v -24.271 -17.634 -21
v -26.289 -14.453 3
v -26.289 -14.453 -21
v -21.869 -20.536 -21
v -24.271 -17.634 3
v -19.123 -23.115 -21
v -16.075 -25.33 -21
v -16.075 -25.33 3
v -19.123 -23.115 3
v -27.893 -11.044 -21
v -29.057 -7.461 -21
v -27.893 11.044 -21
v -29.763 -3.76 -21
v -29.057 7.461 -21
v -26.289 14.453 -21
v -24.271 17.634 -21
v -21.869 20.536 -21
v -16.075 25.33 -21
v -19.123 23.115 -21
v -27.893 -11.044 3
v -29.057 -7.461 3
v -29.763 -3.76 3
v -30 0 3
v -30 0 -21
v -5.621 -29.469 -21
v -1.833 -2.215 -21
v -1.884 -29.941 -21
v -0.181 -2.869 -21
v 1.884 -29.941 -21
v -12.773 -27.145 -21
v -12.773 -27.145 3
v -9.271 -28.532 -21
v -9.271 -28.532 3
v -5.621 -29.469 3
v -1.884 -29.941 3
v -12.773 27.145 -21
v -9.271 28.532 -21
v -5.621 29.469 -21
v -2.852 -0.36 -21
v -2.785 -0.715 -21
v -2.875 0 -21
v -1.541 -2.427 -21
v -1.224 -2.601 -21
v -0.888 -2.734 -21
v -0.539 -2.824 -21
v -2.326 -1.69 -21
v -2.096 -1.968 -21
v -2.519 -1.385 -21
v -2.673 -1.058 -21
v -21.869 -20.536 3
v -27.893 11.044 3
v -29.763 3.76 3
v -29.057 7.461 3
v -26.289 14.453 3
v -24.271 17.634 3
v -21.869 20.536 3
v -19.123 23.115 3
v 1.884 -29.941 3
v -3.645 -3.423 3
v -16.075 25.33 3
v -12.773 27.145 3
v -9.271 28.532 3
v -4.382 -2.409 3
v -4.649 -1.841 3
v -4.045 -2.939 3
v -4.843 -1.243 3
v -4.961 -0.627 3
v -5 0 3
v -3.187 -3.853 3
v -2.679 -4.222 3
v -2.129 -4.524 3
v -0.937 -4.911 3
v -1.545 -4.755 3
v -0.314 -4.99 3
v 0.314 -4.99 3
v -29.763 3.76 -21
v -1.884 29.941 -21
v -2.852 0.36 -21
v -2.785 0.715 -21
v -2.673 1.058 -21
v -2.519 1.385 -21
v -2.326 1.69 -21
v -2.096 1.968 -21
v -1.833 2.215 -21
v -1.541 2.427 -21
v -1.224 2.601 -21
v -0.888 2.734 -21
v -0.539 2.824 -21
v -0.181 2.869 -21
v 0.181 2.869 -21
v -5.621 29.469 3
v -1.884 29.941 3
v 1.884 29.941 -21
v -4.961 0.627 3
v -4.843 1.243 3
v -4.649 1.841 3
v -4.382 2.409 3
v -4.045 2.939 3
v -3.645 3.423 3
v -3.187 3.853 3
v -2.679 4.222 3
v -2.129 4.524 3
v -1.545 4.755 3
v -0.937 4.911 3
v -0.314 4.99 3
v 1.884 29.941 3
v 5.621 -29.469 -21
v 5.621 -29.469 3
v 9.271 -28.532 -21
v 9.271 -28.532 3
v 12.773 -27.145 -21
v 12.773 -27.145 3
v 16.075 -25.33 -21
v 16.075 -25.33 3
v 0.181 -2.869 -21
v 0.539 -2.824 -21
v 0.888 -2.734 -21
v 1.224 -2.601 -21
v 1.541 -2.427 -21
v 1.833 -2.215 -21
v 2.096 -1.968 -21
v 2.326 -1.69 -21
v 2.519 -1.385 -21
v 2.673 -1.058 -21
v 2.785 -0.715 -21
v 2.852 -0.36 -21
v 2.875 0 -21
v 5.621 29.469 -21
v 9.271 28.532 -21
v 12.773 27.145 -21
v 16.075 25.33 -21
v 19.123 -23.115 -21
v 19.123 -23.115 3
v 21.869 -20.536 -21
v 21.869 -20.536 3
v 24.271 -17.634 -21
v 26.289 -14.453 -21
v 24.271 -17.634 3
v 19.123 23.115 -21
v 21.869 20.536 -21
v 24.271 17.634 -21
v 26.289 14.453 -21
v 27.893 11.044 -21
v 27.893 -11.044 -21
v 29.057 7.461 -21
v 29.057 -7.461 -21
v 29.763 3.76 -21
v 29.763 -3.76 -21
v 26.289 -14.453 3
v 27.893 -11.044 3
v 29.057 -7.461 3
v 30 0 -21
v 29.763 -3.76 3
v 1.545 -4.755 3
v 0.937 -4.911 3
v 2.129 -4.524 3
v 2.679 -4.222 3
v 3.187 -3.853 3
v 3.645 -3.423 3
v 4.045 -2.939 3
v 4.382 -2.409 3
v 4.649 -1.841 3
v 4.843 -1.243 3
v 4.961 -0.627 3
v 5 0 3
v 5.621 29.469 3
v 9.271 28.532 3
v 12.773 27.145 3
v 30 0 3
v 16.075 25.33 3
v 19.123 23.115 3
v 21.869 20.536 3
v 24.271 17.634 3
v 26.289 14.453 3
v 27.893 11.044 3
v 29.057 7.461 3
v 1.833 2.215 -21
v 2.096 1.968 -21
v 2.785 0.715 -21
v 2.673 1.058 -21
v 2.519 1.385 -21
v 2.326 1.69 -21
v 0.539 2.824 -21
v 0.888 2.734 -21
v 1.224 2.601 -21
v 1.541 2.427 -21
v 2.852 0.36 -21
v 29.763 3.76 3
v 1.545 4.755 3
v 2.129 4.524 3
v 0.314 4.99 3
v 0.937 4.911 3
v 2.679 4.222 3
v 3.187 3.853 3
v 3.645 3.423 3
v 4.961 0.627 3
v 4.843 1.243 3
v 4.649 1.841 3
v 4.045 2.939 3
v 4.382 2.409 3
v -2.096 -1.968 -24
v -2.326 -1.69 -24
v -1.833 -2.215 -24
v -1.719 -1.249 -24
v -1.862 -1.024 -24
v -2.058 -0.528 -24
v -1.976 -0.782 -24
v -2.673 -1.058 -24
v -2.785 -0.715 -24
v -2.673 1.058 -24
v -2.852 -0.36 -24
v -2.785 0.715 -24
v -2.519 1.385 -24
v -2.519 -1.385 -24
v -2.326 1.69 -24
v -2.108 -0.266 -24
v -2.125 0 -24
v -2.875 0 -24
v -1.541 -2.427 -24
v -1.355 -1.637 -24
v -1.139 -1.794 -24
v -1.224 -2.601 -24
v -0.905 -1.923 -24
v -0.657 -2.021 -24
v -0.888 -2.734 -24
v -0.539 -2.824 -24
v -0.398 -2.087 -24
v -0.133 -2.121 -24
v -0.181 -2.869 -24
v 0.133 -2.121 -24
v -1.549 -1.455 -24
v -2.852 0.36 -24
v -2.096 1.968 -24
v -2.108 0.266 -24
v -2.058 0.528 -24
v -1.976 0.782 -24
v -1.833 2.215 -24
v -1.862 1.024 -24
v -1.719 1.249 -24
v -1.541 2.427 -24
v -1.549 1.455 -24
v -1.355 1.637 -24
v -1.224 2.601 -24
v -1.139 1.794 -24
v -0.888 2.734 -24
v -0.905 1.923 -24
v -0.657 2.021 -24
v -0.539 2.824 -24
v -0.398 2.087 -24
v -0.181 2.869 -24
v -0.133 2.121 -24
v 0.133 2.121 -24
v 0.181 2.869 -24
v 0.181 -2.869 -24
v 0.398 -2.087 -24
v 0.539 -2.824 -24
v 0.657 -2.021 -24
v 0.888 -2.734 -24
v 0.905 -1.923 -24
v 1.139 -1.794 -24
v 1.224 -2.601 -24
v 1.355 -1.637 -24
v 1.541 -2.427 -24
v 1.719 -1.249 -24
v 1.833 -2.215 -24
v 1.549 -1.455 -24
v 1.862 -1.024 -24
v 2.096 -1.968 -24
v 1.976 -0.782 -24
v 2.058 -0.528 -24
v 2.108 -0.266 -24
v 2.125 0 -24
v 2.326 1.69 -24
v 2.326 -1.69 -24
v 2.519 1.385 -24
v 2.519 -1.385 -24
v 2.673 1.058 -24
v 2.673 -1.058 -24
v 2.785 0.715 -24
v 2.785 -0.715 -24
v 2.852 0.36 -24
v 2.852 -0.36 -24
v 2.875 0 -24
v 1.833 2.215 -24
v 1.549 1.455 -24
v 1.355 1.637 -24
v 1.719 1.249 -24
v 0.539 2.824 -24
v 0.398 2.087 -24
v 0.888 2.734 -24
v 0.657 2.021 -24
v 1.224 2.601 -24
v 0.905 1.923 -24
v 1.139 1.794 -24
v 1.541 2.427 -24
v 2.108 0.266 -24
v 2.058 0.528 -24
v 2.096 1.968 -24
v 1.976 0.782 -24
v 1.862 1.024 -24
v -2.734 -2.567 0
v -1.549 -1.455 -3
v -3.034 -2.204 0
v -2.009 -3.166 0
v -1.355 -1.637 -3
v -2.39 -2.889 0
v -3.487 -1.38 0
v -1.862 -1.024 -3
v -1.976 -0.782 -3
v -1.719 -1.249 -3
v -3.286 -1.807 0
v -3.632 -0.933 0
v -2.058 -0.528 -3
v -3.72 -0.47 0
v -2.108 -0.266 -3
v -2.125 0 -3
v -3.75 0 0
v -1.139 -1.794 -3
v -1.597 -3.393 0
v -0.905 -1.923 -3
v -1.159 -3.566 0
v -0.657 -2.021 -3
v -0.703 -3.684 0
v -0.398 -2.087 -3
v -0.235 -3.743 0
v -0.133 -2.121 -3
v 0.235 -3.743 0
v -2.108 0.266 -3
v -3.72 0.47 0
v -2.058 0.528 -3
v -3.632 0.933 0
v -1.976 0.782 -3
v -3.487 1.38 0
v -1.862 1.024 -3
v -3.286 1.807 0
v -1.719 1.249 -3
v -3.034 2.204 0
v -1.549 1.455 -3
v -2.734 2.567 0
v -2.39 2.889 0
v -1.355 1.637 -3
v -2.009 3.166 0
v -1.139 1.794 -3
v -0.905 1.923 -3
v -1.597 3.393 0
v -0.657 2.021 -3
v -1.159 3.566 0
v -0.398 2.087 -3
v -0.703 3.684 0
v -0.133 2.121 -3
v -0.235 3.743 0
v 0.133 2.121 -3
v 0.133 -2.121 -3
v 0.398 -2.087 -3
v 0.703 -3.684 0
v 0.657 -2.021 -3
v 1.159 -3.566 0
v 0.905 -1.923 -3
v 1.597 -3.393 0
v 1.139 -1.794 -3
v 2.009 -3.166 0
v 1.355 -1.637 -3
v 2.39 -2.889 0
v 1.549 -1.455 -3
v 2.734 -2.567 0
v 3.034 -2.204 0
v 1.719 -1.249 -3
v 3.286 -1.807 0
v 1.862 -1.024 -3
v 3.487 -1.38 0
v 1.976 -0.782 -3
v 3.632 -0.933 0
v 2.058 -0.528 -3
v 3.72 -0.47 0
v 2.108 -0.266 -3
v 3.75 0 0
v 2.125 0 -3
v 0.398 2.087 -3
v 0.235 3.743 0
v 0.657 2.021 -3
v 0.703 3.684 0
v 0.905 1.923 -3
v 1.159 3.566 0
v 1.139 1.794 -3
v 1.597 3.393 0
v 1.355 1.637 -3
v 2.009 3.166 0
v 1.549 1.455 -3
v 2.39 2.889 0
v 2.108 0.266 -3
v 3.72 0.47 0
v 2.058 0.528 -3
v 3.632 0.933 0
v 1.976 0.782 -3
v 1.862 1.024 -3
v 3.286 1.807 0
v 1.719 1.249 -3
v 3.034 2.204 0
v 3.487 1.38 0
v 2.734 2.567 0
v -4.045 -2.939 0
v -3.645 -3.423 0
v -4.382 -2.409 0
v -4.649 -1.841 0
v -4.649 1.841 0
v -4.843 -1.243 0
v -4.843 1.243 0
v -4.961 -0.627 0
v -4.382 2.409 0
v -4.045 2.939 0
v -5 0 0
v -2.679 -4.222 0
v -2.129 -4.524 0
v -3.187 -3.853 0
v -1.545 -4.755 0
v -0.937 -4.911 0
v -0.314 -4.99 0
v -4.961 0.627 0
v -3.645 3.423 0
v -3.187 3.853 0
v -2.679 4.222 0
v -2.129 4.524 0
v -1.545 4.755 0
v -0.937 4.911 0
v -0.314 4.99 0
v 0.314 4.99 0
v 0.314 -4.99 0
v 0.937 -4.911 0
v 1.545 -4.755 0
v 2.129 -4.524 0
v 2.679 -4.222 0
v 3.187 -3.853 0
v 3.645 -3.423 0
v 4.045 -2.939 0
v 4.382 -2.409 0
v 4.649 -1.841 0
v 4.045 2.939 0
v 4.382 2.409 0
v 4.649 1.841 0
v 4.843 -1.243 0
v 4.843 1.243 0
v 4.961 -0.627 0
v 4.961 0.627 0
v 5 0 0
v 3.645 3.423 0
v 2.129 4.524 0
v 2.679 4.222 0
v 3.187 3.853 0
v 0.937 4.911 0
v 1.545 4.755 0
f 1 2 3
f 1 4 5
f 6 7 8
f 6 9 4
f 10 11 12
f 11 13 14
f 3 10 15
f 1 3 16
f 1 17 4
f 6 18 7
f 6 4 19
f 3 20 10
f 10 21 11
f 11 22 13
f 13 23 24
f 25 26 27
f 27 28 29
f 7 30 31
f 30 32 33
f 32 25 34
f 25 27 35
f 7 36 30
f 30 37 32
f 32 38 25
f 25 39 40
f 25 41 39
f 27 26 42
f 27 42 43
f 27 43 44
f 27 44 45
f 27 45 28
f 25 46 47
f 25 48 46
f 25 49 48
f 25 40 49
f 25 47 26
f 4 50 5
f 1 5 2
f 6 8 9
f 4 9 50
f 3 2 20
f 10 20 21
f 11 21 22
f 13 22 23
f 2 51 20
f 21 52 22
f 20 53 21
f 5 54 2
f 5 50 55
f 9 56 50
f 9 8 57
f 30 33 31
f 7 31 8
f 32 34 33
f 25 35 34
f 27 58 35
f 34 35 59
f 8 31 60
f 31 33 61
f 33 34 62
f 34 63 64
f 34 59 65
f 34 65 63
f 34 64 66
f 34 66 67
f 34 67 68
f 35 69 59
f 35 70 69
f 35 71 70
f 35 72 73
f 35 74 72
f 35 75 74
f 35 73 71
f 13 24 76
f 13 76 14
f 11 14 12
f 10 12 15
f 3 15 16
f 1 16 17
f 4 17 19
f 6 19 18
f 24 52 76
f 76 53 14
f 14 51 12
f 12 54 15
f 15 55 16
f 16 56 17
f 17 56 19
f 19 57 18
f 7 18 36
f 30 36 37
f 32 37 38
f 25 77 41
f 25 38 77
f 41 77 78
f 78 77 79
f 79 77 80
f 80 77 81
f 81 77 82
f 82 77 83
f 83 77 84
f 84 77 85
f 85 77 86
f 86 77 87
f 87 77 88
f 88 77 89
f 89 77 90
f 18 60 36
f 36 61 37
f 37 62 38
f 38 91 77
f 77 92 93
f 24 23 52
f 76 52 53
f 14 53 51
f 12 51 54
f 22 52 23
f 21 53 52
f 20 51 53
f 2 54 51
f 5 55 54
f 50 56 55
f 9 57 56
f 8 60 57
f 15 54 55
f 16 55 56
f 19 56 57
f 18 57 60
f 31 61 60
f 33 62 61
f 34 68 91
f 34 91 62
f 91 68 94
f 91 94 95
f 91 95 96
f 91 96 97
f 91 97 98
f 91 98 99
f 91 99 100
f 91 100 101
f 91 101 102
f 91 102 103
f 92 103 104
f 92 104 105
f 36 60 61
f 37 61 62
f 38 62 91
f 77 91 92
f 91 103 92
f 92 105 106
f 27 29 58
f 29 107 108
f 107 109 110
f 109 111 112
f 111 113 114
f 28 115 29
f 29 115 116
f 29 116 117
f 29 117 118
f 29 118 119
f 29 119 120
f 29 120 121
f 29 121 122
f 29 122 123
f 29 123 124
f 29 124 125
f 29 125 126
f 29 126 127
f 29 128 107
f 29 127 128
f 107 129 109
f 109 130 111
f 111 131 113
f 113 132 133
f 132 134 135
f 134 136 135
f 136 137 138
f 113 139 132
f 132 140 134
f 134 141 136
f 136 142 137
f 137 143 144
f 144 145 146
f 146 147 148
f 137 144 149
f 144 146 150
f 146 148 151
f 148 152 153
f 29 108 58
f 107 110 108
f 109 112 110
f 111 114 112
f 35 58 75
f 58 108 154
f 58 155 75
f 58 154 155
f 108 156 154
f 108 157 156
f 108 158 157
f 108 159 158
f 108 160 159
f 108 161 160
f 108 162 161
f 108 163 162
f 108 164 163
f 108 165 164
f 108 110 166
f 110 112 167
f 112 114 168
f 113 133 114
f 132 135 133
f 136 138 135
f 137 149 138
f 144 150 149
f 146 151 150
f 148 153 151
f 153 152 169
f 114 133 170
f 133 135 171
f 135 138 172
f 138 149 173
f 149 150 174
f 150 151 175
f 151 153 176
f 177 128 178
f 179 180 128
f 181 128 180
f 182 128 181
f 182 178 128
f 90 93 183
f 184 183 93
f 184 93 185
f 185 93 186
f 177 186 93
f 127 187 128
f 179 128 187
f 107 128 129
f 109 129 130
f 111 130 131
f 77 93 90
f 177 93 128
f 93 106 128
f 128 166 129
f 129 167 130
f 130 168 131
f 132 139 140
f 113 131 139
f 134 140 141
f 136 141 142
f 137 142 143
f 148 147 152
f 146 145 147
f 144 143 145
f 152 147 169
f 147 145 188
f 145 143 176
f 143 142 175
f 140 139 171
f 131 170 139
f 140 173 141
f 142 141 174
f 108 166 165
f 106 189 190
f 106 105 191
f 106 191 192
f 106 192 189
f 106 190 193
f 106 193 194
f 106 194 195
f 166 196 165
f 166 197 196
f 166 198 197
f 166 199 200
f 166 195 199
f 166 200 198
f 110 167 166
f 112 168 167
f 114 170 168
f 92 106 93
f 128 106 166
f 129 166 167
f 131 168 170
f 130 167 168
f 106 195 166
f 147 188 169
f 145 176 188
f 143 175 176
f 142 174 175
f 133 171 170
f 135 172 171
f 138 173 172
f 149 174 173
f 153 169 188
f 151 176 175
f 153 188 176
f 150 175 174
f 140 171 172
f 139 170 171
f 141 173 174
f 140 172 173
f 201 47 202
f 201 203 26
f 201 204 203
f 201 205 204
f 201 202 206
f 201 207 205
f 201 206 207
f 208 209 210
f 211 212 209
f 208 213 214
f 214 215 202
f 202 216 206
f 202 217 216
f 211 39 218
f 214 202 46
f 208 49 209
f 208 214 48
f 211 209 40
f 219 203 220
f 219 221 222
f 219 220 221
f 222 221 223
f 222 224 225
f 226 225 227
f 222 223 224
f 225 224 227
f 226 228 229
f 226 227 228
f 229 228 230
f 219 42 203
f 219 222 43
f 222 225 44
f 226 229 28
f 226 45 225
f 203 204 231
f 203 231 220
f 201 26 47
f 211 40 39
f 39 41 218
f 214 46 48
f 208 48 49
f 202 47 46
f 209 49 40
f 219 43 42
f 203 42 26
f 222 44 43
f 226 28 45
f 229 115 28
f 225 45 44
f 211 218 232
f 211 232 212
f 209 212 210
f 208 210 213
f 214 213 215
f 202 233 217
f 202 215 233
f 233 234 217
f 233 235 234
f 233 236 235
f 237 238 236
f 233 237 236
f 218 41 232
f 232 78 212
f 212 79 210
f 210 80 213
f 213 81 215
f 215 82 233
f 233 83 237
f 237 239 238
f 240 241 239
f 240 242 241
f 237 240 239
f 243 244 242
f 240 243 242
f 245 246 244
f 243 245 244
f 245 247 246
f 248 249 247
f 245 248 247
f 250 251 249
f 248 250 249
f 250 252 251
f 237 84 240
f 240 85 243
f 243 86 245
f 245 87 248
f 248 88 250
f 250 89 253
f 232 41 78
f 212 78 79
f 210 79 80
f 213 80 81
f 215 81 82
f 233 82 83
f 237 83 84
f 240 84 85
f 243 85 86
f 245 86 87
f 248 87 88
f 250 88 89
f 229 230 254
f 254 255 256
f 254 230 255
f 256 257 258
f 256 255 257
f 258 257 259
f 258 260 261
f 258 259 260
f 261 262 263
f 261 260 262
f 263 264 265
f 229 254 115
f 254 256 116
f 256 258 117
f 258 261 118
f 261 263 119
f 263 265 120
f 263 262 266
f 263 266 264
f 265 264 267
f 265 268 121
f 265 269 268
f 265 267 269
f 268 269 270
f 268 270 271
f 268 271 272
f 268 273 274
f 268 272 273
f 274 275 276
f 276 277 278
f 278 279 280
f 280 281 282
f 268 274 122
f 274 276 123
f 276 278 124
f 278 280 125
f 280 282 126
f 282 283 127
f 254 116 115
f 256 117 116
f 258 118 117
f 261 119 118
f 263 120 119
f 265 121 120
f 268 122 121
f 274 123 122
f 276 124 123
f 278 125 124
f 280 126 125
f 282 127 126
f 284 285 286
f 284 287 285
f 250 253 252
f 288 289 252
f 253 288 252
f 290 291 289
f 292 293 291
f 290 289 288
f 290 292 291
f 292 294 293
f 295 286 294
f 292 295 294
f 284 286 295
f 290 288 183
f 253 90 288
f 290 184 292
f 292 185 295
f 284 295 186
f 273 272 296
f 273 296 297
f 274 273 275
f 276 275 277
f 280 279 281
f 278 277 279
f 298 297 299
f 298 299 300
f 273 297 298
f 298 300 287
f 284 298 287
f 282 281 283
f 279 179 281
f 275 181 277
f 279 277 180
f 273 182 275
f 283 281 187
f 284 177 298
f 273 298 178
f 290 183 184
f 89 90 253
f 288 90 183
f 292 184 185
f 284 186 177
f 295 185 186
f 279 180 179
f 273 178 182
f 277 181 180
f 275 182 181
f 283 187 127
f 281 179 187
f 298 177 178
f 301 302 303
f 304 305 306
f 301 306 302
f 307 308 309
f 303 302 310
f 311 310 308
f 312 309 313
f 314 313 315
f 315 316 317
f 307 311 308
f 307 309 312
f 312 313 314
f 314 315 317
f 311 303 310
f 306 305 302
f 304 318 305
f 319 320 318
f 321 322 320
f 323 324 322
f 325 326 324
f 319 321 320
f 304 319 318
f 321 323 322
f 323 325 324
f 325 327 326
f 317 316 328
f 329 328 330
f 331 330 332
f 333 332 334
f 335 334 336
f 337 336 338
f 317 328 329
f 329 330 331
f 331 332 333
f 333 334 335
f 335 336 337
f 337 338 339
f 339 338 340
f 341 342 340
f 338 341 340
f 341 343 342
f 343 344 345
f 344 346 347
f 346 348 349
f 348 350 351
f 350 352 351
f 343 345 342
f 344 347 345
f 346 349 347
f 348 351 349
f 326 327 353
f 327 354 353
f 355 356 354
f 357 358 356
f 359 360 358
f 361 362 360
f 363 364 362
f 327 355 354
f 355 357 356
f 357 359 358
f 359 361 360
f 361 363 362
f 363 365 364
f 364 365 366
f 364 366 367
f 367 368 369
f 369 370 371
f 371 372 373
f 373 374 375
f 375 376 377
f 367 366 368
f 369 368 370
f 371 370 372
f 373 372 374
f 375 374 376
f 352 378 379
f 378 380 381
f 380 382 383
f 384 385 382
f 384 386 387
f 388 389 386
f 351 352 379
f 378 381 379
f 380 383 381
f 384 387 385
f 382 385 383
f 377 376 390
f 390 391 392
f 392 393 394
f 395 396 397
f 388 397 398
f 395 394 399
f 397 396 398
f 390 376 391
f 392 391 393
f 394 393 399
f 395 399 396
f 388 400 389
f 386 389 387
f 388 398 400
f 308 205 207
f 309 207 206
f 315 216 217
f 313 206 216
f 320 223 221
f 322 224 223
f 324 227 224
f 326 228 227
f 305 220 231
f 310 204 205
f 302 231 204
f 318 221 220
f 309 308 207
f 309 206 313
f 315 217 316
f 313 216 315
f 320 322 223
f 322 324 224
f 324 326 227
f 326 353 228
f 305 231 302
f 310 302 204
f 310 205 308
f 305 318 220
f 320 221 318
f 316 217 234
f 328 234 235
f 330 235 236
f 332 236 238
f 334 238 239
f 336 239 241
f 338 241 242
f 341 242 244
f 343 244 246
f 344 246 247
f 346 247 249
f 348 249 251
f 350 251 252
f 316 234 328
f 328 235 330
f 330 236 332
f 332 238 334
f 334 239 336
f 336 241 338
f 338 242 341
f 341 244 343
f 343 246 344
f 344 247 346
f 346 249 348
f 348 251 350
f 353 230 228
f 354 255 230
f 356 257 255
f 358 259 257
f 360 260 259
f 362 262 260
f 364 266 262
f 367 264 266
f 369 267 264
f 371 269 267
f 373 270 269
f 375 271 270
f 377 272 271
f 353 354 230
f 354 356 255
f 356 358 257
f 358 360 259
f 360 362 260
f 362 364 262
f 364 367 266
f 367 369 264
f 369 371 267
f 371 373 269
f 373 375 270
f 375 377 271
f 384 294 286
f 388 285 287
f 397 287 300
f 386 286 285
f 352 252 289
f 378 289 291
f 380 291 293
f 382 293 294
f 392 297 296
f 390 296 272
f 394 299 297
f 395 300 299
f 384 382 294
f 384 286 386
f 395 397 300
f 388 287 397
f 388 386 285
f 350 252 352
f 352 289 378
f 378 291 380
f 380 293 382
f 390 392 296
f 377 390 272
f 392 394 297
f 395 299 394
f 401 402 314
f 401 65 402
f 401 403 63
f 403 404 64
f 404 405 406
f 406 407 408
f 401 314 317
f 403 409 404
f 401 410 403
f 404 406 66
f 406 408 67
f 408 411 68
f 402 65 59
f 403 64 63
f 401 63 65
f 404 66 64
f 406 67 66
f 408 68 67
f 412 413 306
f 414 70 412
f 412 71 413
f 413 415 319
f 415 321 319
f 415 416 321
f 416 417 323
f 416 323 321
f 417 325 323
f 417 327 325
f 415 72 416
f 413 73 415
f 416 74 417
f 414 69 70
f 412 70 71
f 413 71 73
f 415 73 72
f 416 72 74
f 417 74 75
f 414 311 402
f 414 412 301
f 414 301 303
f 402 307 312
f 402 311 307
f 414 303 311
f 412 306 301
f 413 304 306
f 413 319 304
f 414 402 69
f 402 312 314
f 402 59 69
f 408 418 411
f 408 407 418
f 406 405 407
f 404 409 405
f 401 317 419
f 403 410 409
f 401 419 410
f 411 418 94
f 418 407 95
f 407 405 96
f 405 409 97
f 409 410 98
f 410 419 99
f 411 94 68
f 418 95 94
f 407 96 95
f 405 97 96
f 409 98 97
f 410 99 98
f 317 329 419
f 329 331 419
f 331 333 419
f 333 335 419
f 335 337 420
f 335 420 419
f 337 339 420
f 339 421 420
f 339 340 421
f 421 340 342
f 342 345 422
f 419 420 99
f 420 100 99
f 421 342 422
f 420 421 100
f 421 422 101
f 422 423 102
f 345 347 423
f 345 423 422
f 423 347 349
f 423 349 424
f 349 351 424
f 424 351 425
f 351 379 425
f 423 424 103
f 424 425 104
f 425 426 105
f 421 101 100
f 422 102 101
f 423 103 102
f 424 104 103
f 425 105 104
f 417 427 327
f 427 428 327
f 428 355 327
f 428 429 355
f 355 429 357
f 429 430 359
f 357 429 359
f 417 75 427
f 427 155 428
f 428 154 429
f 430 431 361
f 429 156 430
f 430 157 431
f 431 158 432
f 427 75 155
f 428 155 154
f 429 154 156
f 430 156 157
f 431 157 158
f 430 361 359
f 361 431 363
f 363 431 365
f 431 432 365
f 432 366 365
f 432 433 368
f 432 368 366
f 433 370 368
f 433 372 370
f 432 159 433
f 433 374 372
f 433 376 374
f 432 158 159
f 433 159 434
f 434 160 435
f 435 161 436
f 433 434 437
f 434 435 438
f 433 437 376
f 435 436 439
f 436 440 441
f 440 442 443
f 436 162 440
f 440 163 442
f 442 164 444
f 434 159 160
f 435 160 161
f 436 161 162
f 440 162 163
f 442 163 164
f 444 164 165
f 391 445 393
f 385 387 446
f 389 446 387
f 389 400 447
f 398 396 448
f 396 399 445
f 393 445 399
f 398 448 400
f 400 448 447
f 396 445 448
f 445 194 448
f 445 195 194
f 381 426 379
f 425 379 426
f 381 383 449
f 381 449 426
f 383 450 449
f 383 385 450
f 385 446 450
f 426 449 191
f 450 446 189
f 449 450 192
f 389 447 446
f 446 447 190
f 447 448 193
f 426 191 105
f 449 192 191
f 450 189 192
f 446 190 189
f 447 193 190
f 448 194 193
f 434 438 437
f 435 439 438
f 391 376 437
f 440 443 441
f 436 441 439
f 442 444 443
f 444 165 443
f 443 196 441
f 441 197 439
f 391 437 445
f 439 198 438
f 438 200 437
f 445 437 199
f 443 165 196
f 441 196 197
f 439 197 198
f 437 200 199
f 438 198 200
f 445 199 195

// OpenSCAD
$fn = 50;

difference() {
	union() {
		translate(v = [0, 0, -21.0]) {
			cylinder(h = 24, r = 30.0);
		}
		#translate(v = [0, 0, -24.0]) {
			cylinder(h = 24, r = 2.875);
		}
	}
	union() {
		translate(v = [0, 0, 0]) {
			rotate(a = [0, 0, 0]) {
				difference() {
					union() {
						translate(v = [0, 0, -24.0]) {
							cylinder(h = 24, r = 2.0);
						}
						translate(v = [0, 0, -3]) {
							cylinder(h = 3, r1 = 2.125, r2 = 3.75);
						}
						translate(v = [0, 0, -24.0]) {
							cylinder(h = 24, r = 2.125);
						}
						translate(v = [0, 0, -24.0]) {
							cylinder(h = 24, r = 2.0);
						}
					}
					union();
				}
			}
		}
		#cylinder(h = 3, r = 5.0);
	}
}
